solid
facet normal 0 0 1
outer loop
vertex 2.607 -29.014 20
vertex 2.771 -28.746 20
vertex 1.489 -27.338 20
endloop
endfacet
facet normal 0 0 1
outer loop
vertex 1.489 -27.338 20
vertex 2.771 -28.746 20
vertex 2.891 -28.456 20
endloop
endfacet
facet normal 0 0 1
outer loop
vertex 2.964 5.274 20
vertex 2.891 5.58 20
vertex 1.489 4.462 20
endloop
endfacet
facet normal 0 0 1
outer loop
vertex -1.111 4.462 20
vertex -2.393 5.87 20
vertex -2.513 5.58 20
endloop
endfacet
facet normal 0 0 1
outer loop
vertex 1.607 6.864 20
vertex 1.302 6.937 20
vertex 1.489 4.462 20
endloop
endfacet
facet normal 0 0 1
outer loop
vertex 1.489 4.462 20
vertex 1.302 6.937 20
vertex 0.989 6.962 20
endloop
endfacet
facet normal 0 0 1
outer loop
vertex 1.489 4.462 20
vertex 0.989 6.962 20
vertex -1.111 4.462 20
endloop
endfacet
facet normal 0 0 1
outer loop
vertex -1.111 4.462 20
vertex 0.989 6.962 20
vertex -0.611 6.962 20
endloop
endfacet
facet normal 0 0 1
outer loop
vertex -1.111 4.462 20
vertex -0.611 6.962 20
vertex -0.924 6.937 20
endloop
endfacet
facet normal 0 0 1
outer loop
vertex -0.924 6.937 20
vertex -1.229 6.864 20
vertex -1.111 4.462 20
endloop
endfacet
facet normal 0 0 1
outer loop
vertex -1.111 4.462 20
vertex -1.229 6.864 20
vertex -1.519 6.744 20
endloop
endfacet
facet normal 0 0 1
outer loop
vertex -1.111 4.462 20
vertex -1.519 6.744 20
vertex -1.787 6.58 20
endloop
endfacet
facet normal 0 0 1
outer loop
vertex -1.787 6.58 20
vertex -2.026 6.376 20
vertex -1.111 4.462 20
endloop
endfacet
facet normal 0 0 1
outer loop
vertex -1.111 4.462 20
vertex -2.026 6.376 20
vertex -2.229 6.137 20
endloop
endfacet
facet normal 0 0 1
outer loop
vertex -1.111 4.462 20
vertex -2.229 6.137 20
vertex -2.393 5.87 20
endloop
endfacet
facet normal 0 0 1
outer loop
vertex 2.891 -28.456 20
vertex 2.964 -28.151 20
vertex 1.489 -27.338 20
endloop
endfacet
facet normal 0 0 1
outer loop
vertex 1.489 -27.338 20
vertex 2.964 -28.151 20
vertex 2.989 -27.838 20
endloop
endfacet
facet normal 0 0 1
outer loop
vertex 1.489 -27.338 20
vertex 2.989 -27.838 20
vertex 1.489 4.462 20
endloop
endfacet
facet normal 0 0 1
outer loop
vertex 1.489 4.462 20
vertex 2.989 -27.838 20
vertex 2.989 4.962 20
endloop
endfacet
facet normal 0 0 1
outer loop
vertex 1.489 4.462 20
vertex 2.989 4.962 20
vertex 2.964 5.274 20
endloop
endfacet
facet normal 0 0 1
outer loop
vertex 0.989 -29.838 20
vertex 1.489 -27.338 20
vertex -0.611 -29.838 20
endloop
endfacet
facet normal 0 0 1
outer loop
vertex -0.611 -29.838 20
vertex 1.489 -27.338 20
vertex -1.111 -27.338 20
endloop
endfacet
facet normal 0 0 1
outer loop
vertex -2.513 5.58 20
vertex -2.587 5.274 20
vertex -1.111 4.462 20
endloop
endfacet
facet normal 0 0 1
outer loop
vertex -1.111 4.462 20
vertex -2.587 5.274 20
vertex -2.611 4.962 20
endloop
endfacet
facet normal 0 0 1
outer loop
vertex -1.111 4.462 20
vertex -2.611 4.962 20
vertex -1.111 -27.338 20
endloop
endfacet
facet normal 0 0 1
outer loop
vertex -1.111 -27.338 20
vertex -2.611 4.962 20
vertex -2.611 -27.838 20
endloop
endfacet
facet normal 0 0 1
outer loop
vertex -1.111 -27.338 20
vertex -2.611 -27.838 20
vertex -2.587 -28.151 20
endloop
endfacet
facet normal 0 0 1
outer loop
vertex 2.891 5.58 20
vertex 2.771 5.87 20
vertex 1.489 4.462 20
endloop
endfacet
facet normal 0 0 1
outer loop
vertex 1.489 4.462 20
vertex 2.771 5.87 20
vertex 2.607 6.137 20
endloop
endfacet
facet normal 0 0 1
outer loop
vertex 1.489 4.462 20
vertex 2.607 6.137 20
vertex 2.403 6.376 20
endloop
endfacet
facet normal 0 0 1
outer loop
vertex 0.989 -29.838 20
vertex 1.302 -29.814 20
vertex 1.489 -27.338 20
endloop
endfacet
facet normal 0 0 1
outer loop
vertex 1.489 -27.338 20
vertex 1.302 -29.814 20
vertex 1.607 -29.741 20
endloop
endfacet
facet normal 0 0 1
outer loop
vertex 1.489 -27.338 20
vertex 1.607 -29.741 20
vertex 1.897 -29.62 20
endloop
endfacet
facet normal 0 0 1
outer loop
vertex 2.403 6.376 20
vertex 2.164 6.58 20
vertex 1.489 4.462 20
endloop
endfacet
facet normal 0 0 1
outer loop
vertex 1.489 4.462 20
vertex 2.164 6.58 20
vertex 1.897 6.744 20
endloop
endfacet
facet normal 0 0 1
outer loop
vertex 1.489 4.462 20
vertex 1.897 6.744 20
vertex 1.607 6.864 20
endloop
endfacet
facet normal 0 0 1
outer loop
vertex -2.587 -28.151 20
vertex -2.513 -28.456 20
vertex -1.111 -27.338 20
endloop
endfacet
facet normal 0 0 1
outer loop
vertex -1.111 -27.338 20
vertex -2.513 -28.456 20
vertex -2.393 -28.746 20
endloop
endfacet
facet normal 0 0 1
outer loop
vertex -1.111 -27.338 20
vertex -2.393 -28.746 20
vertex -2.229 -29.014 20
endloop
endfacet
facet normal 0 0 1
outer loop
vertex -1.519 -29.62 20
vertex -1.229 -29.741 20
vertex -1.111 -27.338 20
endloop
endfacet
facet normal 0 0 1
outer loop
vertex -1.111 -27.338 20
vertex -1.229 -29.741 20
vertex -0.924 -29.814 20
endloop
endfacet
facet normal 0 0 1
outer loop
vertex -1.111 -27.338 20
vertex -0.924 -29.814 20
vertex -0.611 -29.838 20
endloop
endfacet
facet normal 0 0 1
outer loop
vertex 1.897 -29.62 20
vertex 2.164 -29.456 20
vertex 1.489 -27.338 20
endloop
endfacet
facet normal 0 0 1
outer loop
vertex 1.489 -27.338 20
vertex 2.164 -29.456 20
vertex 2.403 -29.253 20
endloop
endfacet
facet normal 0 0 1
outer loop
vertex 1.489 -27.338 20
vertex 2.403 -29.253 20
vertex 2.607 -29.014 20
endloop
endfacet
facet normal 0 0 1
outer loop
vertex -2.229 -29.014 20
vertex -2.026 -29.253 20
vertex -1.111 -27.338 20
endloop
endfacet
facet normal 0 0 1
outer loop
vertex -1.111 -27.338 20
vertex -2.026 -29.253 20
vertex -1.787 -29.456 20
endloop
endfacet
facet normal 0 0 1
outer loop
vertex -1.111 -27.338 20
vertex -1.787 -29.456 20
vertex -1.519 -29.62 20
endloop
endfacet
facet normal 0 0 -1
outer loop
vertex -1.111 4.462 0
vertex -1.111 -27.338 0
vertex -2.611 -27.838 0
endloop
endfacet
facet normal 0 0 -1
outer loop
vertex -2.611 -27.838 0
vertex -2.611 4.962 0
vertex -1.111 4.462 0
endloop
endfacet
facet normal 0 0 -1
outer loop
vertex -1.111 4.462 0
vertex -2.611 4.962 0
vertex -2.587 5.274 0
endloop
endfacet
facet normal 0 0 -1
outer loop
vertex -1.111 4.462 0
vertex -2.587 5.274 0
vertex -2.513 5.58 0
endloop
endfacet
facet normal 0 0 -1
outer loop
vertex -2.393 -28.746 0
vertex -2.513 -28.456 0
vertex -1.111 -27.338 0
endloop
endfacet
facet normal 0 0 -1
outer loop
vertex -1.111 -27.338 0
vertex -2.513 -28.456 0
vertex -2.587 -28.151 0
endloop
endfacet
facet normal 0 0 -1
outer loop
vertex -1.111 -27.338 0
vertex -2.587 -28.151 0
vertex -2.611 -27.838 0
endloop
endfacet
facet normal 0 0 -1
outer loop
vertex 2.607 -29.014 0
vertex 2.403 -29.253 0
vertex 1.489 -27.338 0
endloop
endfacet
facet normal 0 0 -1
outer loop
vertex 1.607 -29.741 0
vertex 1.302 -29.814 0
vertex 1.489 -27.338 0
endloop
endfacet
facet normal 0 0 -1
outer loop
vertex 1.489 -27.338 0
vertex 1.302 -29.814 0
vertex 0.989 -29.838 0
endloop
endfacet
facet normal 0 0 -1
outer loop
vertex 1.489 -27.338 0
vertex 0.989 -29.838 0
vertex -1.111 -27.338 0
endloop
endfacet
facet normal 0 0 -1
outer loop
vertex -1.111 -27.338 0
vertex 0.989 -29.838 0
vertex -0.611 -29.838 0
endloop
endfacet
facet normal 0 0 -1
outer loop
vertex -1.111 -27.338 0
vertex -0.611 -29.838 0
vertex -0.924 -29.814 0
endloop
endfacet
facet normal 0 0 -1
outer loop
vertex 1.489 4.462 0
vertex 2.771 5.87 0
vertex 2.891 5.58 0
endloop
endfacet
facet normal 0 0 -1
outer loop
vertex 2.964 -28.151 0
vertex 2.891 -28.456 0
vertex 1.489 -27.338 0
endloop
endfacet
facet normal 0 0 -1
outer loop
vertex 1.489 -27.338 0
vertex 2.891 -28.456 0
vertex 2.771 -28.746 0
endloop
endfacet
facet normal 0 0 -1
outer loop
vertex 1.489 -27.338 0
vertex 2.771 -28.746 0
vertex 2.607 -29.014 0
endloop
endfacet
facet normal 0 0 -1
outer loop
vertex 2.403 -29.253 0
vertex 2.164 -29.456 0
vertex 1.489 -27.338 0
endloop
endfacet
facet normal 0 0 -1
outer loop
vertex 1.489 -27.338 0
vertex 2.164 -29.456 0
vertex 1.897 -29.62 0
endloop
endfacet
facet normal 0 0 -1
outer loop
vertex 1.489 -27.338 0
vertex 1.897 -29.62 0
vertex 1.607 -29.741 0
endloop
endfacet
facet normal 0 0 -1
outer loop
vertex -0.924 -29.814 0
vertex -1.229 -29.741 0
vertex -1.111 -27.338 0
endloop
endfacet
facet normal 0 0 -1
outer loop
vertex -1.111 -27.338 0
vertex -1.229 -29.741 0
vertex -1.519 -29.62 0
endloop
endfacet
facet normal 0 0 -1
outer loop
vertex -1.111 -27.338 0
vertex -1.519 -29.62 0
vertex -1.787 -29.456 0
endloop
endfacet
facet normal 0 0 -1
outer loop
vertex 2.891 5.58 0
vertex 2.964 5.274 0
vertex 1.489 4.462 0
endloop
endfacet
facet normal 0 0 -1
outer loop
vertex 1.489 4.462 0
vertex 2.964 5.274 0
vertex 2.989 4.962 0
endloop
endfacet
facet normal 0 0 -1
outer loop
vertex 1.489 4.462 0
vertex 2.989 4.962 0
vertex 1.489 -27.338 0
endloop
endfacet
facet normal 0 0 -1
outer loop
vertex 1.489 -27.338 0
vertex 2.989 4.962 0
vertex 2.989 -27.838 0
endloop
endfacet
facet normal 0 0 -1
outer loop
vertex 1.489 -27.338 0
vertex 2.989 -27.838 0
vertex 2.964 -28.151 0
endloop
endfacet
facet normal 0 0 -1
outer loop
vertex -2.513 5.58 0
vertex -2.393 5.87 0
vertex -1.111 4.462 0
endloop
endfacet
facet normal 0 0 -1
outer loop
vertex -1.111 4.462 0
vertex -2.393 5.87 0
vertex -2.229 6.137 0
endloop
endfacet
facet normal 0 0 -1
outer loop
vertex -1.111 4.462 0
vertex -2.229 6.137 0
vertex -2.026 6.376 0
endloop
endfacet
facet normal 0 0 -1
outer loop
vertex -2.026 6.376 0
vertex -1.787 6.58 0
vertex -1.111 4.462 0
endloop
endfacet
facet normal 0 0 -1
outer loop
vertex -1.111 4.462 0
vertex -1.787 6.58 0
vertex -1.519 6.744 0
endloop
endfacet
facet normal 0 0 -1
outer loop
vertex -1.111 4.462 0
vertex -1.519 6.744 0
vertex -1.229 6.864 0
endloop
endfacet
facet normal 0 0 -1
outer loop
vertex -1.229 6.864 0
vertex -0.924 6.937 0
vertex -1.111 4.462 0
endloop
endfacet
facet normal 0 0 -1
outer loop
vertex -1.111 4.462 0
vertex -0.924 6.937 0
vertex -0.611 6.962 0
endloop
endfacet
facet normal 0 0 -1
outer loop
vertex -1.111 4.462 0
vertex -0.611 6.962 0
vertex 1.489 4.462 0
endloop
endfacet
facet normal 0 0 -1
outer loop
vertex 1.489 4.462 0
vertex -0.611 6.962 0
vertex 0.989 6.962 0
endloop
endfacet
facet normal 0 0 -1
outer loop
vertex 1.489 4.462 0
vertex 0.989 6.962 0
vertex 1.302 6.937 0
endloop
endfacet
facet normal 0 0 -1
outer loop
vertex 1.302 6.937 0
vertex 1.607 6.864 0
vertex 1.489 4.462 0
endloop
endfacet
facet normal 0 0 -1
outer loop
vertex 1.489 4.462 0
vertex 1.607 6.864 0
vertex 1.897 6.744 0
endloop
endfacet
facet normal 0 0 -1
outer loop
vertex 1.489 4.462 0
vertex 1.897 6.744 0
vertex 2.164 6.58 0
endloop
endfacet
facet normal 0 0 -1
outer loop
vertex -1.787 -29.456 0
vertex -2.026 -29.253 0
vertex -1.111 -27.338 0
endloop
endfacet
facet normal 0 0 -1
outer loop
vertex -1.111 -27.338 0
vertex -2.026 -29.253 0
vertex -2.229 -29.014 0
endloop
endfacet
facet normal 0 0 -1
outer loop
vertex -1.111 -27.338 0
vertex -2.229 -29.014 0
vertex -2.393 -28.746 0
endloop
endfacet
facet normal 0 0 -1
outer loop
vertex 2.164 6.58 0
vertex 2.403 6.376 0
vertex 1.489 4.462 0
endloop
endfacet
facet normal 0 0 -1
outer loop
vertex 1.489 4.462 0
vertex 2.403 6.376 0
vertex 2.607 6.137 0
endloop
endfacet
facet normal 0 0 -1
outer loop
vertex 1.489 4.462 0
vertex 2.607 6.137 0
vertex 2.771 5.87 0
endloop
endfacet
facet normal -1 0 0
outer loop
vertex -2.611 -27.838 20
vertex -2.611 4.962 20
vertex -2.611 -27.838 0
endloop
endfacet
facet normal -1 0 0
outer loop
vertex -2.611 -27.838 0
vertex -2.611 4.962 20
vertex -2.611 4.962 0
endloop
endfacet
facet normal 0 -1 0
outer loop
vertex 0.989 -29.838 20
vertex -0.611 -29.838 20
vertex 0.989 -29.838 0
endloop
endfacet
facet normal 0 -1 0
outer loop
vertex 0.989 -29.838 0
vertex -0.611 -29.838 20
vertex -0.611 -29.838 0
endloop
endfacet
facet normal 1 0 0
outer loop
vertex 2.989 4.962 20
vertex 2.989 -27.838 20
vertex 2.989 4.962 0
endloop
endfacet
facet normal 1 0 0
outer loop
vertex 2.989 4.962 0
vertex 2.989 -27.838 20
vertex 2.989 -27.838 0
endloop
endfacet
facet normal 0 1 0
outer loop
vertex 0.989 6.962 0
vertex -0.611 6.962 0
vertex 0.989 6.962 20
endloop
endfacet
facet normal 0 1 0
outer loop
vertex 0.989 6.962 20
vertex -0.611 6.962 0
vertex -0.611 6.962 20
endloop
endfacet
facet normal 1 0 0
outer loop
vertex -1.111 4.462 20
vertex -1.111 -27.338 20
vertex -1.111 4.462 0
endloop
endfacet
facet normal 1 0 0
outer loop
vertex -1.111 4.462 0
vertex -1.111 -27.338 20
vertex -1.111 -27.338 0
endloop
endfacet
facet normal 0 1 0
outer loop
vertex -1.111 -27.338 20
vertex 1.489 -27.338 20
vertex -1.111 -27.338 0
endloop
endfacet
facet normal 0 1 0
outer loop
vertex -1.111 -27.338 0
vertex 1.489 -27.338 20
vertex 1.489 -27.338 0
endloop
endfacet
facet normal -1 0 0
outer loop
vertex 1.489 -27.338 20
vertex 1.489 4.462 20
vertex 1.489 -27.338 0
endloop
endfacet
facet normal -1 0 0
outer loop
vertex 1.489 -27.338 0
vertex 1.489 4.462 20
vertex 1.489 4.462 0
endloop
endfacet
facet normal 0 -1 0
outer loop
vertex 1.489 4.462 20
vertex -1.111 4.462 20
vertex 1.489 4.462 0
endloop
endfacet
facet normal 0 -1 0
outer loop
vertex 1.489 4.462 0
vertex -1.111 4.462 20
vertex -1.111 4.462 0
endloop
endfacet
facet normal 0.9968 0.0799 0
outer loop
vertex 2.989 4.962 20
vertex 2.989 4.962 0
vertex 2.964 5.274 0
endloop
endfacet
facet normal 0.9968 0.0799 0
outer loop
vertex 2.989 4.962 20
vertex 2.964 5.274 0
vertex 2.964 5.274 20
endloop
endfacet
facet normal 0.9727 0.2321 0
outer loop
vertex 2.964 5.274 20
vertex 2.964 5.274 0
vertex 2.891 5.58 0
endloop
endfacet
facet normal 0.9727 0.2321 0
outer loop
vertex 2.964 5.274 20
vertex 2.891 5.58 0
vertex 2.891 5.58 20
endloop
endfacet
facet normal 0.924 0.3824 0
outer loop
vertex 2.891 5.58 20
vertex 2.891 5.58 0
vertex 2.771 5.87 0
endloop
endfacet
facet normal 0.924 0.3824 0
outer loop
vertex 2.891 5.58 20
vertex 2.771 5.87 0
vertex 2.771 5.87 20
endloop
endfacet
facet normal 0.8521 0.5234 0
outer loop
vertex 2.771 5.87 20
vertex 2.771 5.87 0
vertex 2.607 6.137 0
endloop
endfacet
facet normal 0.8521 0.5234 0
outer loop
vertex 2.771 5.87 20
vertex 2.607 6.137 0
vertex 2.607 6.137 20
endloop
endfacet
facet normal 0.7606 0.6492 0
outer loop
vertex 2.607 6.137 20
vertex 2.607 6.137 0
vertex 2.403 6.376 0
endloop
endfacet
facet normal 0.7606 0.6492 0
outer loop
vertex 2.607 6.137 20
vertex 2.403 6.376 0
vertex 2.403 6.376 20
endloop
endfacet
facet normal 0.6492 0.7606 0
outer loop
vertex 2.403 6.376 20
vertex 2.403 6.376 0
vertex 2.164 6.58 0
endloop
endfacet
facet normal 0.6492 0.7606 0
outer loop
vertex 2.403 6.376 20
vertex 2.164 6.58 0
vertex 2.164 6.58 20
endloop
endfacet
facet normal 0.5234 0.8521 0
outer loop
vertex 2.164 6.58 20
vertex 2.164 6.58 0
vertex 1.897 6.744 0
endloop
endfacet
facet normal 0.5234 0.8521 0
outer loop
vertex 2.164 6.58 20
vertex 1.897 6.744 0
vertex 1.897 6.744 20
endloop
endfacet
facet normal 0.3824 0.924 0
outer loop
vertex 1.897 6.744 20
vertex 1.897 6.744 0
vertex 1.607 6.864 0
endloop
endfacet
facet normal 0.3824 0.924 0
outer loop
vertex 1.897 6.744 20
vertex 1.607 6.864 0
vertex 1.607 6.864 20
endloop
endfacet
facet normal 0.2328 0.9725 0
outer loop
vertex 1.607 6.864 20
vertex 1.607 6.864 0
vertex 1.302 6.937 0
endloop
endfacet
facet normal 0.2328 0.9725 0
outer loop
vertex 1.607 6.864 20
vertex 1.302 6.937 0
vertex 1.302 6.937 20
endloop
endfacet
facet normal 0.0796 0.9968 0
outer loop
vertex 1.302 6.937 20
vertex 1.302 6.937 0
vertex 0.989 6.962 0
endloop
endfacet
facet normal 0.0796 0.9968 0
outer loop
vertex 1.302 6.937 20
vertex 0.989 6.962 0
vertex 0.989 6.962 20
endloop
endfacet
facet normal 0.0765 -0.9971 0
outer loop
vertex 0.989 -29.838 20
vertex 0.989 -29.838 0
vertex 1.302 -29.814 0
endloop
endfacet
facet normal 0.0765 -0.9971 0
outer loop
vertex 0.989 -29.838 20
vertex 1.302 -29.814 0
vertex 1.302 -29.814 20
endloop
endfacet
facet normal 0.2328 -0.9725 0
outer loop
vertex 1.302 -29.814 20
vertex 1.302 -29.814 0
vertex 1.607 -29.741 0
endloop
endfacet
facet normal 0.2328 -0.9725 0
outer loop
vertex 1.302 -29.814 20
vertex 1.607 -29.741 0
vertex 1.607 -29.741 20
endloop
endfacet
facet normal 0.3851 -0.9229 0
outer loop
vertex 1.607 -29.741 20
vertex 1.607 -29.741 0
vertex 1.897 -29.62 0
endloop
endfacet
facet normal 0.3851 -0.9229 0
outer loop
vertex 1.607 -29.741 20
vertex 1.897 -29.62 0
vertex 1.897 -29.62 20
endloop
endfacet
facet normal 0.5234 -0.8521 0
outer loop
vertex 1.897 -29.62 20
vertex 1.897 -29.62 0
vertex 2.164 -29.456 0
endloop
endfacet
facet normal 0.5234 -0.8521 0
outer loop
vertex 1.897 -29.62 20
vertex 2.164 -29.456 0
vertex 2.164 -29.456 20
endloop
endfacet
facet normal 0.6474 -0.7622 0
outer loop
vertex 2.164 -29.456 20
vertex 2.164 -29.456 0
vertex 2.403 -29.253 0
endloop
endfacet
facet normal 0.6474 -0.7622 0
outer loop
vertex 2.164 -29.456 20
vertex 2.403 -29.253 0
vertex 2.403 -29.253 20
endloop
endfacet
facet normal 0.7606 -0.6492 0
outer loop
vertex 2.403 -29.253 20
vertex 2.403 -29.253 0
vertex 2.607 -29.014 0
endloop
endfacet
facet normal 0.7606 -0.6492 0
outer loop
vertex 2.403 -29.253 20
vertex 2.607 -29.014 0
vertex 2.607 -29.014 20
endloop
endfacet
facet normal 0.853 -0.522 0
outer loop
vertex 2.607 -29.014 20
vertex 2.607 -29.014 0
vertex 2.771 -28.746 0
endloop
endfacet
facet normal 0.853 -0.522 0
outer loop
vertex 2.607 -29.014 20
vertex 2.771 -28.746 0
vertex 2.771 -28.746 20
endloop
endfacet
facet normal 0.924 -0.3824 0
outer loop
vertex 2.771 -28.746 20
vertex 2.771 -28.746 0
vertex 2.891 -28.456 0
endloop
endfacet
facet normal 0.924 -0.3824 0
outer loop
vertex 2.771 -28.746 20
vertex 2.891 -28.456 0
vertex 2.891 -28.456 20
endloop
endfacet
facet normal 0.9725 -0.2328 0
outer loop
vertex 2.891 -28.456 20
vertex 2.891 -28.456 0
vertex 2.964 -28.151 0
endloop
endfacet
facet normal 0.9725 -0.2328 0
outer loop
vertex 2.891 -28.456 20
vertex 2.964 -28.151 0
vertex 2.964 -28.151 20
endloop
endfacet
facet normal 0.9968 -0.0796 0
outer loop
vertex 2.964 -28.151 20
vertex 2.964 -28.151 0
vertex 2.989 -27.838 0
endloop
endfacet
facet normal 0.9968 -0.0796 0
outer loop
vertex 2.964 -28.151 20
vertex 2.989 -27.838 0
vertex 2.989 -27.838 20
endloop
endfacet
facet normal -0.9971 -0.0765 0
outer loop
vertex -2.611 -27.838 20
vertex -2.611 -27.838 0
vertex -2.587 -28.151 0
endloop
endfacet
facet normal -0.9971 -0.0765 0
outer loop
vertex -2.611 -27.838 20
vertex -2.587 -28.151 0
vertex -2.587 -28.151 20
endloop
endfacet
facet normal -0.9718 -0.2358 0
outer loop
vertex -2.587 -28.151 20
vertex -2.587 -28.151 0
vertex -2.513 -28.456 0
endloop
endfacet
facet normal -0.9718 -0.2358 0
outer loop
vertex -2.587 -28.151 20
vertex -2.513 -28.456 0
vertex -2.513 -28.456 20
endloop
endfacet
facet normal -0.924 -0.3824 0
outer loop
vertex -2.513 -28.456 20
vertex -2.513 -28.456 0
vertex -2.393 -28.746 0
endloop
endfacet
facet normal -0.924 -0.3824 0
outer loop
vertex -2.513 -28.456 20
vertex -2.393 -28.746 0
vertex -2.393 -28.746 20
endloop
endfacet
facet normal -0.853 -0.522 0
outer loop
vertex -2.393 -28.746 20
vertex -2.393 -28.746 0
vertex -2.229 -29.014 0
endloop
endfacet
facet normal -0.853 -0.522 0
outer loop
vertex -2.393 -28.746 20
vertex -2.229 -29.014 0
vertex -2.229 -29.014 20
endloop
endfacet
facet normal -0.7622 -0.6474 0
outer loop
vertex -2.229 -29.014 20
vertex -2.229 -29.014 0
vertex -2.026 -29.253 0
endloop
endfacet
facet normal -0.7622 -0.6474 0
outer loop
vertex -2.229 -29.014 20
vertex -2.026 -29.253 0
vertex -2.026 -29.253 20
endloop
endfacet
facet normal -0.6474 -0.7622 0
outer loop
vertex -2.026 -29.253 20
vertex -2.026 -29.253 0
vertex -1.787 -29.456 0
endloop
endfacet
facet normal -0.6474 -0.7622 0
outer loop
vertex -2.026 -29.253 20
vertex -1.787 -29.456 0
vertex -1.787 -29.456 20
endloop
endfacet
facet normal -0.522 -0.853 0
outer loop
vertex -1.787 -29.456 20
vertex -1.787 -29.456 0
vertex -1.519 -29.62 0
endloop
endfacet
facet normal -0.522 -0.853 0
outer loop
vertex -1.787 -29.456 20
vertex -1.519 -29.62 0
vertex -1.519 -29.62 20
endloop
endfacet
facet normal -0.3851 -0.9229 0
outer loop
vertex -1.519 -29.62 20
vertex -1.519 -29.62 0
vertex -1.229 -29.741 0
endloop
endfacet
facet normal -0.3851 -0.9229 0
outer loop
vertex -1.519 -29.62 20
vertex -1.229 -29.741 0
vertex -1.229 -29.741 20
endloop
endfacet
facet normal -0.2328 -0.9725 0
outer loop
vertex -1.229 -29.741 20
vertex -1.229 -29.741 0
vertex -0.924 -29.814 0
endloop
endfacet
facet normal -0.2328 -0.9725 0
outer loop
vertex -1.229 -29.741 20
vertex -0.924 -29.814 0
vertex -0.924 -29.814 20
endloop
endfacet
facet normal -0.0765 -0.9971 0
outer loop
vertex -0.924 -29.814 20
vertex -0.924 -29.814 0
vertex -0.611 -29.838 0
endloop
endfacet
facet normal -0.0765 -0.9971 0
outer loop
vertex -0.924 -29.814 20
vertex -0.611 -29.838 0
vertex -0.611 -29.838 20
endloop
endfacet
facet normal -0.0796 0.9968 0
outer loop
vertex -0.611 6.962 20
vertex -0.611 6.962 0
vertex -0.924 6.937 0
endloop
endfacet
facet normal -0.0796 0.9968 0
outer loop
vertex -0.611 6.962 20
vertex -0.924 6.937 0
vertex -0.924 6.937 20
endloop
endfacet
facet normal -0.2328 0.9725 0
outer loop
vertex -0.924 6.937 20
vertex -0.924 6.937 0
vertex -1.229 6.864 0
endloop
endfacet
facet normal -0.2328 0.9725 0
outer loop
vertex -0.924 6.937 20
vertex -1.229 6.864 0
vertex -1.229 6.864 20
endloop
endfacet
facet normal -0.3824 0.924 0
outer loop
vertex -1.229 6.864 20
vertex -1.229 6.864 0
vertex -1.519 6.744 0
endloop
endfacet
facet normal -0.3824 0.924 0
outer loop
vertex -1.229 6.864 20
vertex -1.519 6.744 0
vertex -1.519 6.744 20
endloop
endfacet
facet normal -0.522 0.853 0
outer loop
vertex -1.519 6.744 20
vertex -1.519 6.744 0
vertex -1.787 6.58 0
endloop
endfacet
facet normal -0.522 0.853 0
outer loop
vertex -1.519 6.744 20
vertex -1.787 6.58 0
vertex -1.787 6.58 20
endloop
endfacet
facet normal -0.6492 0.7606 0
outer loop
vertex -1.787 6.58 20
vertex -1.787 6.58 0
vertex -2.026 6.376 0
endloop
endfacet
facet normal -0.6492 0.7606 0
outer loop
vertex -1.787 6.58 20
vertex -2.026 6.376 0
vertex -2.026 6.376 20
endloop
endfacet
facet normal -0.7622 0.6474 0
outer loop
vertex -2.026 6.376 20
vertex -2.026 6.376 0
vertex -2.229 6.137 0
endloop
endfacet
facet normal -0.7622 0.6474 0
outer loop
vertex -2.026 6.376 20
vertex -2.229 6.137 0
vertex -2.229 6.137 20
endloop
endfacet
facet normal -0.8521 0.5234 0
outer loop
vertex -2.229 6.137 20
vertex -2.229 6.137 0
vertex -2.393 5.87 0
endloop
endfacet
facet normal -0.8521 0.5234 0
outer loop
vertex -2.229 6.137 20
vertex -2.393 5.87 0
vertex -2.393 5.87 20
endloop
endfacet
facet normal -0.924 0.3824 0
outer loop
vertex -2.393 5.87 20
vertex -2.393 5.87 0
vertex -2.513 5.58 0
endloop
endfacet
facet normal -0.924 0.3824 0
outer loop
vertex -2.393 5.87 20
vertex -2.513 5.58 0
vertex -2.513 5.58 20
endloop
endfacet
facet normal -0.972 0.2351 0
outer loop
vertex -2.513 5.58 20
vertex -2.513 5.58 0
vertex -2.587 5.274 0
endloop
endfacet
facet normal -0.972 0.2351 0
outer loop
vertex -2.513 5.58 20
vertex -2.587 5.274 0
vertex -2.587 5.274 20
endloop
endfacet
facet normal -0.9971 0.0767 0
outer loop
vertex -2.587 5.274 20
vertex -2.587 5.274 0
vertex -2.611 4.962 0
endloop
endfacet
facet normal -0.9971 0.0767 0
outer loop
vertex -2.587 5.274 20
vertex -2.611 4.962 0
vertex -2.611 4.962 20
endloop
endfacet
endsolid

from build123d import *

# Parameters (mm, degrees)
ESQUISSE1_W        = 5.6
ESQUISSE1_H        = 36.8
ESQUISSE1_W_2      = 2.6
ESQUISSE1_H_2      = 31.8
BOSS_EXTRU_1_DEPTH = 20
CONG_1_R           = 2


with BuildPart() as part:
    # Esquisse1 → Boss.-Extru.1 (new body)
    with BuildSketch(Plane.XY):
        with Locations((0.188649611, -11.438461538)):
            Rectangle(ESQUISSE1_W, ESQUISSE1_H)
        with Locations((0.188649611, -11.438461538)):
            Rectangle(ESQUISSE1_W_2, ESQUISSE1_H_2, mode=Mode.SUBTRACT)
    extrude(amount=BOSS_EXTRU_1_DEPTH)

    # Congé1
    cong_1_edges = [part.edges().sort_by_distance(p)[0] for p in [
        (-2.611350389, 6.961538462, 10),
        (2.988649611, 6.961538462, 10),
        (2.988649611, -29.838461538, 10),
        (-2.611350389, -29.838461538, 10),
    ]]
    fillet(cong_1_edges, radius=CONG_1_R)


solid = part.part
